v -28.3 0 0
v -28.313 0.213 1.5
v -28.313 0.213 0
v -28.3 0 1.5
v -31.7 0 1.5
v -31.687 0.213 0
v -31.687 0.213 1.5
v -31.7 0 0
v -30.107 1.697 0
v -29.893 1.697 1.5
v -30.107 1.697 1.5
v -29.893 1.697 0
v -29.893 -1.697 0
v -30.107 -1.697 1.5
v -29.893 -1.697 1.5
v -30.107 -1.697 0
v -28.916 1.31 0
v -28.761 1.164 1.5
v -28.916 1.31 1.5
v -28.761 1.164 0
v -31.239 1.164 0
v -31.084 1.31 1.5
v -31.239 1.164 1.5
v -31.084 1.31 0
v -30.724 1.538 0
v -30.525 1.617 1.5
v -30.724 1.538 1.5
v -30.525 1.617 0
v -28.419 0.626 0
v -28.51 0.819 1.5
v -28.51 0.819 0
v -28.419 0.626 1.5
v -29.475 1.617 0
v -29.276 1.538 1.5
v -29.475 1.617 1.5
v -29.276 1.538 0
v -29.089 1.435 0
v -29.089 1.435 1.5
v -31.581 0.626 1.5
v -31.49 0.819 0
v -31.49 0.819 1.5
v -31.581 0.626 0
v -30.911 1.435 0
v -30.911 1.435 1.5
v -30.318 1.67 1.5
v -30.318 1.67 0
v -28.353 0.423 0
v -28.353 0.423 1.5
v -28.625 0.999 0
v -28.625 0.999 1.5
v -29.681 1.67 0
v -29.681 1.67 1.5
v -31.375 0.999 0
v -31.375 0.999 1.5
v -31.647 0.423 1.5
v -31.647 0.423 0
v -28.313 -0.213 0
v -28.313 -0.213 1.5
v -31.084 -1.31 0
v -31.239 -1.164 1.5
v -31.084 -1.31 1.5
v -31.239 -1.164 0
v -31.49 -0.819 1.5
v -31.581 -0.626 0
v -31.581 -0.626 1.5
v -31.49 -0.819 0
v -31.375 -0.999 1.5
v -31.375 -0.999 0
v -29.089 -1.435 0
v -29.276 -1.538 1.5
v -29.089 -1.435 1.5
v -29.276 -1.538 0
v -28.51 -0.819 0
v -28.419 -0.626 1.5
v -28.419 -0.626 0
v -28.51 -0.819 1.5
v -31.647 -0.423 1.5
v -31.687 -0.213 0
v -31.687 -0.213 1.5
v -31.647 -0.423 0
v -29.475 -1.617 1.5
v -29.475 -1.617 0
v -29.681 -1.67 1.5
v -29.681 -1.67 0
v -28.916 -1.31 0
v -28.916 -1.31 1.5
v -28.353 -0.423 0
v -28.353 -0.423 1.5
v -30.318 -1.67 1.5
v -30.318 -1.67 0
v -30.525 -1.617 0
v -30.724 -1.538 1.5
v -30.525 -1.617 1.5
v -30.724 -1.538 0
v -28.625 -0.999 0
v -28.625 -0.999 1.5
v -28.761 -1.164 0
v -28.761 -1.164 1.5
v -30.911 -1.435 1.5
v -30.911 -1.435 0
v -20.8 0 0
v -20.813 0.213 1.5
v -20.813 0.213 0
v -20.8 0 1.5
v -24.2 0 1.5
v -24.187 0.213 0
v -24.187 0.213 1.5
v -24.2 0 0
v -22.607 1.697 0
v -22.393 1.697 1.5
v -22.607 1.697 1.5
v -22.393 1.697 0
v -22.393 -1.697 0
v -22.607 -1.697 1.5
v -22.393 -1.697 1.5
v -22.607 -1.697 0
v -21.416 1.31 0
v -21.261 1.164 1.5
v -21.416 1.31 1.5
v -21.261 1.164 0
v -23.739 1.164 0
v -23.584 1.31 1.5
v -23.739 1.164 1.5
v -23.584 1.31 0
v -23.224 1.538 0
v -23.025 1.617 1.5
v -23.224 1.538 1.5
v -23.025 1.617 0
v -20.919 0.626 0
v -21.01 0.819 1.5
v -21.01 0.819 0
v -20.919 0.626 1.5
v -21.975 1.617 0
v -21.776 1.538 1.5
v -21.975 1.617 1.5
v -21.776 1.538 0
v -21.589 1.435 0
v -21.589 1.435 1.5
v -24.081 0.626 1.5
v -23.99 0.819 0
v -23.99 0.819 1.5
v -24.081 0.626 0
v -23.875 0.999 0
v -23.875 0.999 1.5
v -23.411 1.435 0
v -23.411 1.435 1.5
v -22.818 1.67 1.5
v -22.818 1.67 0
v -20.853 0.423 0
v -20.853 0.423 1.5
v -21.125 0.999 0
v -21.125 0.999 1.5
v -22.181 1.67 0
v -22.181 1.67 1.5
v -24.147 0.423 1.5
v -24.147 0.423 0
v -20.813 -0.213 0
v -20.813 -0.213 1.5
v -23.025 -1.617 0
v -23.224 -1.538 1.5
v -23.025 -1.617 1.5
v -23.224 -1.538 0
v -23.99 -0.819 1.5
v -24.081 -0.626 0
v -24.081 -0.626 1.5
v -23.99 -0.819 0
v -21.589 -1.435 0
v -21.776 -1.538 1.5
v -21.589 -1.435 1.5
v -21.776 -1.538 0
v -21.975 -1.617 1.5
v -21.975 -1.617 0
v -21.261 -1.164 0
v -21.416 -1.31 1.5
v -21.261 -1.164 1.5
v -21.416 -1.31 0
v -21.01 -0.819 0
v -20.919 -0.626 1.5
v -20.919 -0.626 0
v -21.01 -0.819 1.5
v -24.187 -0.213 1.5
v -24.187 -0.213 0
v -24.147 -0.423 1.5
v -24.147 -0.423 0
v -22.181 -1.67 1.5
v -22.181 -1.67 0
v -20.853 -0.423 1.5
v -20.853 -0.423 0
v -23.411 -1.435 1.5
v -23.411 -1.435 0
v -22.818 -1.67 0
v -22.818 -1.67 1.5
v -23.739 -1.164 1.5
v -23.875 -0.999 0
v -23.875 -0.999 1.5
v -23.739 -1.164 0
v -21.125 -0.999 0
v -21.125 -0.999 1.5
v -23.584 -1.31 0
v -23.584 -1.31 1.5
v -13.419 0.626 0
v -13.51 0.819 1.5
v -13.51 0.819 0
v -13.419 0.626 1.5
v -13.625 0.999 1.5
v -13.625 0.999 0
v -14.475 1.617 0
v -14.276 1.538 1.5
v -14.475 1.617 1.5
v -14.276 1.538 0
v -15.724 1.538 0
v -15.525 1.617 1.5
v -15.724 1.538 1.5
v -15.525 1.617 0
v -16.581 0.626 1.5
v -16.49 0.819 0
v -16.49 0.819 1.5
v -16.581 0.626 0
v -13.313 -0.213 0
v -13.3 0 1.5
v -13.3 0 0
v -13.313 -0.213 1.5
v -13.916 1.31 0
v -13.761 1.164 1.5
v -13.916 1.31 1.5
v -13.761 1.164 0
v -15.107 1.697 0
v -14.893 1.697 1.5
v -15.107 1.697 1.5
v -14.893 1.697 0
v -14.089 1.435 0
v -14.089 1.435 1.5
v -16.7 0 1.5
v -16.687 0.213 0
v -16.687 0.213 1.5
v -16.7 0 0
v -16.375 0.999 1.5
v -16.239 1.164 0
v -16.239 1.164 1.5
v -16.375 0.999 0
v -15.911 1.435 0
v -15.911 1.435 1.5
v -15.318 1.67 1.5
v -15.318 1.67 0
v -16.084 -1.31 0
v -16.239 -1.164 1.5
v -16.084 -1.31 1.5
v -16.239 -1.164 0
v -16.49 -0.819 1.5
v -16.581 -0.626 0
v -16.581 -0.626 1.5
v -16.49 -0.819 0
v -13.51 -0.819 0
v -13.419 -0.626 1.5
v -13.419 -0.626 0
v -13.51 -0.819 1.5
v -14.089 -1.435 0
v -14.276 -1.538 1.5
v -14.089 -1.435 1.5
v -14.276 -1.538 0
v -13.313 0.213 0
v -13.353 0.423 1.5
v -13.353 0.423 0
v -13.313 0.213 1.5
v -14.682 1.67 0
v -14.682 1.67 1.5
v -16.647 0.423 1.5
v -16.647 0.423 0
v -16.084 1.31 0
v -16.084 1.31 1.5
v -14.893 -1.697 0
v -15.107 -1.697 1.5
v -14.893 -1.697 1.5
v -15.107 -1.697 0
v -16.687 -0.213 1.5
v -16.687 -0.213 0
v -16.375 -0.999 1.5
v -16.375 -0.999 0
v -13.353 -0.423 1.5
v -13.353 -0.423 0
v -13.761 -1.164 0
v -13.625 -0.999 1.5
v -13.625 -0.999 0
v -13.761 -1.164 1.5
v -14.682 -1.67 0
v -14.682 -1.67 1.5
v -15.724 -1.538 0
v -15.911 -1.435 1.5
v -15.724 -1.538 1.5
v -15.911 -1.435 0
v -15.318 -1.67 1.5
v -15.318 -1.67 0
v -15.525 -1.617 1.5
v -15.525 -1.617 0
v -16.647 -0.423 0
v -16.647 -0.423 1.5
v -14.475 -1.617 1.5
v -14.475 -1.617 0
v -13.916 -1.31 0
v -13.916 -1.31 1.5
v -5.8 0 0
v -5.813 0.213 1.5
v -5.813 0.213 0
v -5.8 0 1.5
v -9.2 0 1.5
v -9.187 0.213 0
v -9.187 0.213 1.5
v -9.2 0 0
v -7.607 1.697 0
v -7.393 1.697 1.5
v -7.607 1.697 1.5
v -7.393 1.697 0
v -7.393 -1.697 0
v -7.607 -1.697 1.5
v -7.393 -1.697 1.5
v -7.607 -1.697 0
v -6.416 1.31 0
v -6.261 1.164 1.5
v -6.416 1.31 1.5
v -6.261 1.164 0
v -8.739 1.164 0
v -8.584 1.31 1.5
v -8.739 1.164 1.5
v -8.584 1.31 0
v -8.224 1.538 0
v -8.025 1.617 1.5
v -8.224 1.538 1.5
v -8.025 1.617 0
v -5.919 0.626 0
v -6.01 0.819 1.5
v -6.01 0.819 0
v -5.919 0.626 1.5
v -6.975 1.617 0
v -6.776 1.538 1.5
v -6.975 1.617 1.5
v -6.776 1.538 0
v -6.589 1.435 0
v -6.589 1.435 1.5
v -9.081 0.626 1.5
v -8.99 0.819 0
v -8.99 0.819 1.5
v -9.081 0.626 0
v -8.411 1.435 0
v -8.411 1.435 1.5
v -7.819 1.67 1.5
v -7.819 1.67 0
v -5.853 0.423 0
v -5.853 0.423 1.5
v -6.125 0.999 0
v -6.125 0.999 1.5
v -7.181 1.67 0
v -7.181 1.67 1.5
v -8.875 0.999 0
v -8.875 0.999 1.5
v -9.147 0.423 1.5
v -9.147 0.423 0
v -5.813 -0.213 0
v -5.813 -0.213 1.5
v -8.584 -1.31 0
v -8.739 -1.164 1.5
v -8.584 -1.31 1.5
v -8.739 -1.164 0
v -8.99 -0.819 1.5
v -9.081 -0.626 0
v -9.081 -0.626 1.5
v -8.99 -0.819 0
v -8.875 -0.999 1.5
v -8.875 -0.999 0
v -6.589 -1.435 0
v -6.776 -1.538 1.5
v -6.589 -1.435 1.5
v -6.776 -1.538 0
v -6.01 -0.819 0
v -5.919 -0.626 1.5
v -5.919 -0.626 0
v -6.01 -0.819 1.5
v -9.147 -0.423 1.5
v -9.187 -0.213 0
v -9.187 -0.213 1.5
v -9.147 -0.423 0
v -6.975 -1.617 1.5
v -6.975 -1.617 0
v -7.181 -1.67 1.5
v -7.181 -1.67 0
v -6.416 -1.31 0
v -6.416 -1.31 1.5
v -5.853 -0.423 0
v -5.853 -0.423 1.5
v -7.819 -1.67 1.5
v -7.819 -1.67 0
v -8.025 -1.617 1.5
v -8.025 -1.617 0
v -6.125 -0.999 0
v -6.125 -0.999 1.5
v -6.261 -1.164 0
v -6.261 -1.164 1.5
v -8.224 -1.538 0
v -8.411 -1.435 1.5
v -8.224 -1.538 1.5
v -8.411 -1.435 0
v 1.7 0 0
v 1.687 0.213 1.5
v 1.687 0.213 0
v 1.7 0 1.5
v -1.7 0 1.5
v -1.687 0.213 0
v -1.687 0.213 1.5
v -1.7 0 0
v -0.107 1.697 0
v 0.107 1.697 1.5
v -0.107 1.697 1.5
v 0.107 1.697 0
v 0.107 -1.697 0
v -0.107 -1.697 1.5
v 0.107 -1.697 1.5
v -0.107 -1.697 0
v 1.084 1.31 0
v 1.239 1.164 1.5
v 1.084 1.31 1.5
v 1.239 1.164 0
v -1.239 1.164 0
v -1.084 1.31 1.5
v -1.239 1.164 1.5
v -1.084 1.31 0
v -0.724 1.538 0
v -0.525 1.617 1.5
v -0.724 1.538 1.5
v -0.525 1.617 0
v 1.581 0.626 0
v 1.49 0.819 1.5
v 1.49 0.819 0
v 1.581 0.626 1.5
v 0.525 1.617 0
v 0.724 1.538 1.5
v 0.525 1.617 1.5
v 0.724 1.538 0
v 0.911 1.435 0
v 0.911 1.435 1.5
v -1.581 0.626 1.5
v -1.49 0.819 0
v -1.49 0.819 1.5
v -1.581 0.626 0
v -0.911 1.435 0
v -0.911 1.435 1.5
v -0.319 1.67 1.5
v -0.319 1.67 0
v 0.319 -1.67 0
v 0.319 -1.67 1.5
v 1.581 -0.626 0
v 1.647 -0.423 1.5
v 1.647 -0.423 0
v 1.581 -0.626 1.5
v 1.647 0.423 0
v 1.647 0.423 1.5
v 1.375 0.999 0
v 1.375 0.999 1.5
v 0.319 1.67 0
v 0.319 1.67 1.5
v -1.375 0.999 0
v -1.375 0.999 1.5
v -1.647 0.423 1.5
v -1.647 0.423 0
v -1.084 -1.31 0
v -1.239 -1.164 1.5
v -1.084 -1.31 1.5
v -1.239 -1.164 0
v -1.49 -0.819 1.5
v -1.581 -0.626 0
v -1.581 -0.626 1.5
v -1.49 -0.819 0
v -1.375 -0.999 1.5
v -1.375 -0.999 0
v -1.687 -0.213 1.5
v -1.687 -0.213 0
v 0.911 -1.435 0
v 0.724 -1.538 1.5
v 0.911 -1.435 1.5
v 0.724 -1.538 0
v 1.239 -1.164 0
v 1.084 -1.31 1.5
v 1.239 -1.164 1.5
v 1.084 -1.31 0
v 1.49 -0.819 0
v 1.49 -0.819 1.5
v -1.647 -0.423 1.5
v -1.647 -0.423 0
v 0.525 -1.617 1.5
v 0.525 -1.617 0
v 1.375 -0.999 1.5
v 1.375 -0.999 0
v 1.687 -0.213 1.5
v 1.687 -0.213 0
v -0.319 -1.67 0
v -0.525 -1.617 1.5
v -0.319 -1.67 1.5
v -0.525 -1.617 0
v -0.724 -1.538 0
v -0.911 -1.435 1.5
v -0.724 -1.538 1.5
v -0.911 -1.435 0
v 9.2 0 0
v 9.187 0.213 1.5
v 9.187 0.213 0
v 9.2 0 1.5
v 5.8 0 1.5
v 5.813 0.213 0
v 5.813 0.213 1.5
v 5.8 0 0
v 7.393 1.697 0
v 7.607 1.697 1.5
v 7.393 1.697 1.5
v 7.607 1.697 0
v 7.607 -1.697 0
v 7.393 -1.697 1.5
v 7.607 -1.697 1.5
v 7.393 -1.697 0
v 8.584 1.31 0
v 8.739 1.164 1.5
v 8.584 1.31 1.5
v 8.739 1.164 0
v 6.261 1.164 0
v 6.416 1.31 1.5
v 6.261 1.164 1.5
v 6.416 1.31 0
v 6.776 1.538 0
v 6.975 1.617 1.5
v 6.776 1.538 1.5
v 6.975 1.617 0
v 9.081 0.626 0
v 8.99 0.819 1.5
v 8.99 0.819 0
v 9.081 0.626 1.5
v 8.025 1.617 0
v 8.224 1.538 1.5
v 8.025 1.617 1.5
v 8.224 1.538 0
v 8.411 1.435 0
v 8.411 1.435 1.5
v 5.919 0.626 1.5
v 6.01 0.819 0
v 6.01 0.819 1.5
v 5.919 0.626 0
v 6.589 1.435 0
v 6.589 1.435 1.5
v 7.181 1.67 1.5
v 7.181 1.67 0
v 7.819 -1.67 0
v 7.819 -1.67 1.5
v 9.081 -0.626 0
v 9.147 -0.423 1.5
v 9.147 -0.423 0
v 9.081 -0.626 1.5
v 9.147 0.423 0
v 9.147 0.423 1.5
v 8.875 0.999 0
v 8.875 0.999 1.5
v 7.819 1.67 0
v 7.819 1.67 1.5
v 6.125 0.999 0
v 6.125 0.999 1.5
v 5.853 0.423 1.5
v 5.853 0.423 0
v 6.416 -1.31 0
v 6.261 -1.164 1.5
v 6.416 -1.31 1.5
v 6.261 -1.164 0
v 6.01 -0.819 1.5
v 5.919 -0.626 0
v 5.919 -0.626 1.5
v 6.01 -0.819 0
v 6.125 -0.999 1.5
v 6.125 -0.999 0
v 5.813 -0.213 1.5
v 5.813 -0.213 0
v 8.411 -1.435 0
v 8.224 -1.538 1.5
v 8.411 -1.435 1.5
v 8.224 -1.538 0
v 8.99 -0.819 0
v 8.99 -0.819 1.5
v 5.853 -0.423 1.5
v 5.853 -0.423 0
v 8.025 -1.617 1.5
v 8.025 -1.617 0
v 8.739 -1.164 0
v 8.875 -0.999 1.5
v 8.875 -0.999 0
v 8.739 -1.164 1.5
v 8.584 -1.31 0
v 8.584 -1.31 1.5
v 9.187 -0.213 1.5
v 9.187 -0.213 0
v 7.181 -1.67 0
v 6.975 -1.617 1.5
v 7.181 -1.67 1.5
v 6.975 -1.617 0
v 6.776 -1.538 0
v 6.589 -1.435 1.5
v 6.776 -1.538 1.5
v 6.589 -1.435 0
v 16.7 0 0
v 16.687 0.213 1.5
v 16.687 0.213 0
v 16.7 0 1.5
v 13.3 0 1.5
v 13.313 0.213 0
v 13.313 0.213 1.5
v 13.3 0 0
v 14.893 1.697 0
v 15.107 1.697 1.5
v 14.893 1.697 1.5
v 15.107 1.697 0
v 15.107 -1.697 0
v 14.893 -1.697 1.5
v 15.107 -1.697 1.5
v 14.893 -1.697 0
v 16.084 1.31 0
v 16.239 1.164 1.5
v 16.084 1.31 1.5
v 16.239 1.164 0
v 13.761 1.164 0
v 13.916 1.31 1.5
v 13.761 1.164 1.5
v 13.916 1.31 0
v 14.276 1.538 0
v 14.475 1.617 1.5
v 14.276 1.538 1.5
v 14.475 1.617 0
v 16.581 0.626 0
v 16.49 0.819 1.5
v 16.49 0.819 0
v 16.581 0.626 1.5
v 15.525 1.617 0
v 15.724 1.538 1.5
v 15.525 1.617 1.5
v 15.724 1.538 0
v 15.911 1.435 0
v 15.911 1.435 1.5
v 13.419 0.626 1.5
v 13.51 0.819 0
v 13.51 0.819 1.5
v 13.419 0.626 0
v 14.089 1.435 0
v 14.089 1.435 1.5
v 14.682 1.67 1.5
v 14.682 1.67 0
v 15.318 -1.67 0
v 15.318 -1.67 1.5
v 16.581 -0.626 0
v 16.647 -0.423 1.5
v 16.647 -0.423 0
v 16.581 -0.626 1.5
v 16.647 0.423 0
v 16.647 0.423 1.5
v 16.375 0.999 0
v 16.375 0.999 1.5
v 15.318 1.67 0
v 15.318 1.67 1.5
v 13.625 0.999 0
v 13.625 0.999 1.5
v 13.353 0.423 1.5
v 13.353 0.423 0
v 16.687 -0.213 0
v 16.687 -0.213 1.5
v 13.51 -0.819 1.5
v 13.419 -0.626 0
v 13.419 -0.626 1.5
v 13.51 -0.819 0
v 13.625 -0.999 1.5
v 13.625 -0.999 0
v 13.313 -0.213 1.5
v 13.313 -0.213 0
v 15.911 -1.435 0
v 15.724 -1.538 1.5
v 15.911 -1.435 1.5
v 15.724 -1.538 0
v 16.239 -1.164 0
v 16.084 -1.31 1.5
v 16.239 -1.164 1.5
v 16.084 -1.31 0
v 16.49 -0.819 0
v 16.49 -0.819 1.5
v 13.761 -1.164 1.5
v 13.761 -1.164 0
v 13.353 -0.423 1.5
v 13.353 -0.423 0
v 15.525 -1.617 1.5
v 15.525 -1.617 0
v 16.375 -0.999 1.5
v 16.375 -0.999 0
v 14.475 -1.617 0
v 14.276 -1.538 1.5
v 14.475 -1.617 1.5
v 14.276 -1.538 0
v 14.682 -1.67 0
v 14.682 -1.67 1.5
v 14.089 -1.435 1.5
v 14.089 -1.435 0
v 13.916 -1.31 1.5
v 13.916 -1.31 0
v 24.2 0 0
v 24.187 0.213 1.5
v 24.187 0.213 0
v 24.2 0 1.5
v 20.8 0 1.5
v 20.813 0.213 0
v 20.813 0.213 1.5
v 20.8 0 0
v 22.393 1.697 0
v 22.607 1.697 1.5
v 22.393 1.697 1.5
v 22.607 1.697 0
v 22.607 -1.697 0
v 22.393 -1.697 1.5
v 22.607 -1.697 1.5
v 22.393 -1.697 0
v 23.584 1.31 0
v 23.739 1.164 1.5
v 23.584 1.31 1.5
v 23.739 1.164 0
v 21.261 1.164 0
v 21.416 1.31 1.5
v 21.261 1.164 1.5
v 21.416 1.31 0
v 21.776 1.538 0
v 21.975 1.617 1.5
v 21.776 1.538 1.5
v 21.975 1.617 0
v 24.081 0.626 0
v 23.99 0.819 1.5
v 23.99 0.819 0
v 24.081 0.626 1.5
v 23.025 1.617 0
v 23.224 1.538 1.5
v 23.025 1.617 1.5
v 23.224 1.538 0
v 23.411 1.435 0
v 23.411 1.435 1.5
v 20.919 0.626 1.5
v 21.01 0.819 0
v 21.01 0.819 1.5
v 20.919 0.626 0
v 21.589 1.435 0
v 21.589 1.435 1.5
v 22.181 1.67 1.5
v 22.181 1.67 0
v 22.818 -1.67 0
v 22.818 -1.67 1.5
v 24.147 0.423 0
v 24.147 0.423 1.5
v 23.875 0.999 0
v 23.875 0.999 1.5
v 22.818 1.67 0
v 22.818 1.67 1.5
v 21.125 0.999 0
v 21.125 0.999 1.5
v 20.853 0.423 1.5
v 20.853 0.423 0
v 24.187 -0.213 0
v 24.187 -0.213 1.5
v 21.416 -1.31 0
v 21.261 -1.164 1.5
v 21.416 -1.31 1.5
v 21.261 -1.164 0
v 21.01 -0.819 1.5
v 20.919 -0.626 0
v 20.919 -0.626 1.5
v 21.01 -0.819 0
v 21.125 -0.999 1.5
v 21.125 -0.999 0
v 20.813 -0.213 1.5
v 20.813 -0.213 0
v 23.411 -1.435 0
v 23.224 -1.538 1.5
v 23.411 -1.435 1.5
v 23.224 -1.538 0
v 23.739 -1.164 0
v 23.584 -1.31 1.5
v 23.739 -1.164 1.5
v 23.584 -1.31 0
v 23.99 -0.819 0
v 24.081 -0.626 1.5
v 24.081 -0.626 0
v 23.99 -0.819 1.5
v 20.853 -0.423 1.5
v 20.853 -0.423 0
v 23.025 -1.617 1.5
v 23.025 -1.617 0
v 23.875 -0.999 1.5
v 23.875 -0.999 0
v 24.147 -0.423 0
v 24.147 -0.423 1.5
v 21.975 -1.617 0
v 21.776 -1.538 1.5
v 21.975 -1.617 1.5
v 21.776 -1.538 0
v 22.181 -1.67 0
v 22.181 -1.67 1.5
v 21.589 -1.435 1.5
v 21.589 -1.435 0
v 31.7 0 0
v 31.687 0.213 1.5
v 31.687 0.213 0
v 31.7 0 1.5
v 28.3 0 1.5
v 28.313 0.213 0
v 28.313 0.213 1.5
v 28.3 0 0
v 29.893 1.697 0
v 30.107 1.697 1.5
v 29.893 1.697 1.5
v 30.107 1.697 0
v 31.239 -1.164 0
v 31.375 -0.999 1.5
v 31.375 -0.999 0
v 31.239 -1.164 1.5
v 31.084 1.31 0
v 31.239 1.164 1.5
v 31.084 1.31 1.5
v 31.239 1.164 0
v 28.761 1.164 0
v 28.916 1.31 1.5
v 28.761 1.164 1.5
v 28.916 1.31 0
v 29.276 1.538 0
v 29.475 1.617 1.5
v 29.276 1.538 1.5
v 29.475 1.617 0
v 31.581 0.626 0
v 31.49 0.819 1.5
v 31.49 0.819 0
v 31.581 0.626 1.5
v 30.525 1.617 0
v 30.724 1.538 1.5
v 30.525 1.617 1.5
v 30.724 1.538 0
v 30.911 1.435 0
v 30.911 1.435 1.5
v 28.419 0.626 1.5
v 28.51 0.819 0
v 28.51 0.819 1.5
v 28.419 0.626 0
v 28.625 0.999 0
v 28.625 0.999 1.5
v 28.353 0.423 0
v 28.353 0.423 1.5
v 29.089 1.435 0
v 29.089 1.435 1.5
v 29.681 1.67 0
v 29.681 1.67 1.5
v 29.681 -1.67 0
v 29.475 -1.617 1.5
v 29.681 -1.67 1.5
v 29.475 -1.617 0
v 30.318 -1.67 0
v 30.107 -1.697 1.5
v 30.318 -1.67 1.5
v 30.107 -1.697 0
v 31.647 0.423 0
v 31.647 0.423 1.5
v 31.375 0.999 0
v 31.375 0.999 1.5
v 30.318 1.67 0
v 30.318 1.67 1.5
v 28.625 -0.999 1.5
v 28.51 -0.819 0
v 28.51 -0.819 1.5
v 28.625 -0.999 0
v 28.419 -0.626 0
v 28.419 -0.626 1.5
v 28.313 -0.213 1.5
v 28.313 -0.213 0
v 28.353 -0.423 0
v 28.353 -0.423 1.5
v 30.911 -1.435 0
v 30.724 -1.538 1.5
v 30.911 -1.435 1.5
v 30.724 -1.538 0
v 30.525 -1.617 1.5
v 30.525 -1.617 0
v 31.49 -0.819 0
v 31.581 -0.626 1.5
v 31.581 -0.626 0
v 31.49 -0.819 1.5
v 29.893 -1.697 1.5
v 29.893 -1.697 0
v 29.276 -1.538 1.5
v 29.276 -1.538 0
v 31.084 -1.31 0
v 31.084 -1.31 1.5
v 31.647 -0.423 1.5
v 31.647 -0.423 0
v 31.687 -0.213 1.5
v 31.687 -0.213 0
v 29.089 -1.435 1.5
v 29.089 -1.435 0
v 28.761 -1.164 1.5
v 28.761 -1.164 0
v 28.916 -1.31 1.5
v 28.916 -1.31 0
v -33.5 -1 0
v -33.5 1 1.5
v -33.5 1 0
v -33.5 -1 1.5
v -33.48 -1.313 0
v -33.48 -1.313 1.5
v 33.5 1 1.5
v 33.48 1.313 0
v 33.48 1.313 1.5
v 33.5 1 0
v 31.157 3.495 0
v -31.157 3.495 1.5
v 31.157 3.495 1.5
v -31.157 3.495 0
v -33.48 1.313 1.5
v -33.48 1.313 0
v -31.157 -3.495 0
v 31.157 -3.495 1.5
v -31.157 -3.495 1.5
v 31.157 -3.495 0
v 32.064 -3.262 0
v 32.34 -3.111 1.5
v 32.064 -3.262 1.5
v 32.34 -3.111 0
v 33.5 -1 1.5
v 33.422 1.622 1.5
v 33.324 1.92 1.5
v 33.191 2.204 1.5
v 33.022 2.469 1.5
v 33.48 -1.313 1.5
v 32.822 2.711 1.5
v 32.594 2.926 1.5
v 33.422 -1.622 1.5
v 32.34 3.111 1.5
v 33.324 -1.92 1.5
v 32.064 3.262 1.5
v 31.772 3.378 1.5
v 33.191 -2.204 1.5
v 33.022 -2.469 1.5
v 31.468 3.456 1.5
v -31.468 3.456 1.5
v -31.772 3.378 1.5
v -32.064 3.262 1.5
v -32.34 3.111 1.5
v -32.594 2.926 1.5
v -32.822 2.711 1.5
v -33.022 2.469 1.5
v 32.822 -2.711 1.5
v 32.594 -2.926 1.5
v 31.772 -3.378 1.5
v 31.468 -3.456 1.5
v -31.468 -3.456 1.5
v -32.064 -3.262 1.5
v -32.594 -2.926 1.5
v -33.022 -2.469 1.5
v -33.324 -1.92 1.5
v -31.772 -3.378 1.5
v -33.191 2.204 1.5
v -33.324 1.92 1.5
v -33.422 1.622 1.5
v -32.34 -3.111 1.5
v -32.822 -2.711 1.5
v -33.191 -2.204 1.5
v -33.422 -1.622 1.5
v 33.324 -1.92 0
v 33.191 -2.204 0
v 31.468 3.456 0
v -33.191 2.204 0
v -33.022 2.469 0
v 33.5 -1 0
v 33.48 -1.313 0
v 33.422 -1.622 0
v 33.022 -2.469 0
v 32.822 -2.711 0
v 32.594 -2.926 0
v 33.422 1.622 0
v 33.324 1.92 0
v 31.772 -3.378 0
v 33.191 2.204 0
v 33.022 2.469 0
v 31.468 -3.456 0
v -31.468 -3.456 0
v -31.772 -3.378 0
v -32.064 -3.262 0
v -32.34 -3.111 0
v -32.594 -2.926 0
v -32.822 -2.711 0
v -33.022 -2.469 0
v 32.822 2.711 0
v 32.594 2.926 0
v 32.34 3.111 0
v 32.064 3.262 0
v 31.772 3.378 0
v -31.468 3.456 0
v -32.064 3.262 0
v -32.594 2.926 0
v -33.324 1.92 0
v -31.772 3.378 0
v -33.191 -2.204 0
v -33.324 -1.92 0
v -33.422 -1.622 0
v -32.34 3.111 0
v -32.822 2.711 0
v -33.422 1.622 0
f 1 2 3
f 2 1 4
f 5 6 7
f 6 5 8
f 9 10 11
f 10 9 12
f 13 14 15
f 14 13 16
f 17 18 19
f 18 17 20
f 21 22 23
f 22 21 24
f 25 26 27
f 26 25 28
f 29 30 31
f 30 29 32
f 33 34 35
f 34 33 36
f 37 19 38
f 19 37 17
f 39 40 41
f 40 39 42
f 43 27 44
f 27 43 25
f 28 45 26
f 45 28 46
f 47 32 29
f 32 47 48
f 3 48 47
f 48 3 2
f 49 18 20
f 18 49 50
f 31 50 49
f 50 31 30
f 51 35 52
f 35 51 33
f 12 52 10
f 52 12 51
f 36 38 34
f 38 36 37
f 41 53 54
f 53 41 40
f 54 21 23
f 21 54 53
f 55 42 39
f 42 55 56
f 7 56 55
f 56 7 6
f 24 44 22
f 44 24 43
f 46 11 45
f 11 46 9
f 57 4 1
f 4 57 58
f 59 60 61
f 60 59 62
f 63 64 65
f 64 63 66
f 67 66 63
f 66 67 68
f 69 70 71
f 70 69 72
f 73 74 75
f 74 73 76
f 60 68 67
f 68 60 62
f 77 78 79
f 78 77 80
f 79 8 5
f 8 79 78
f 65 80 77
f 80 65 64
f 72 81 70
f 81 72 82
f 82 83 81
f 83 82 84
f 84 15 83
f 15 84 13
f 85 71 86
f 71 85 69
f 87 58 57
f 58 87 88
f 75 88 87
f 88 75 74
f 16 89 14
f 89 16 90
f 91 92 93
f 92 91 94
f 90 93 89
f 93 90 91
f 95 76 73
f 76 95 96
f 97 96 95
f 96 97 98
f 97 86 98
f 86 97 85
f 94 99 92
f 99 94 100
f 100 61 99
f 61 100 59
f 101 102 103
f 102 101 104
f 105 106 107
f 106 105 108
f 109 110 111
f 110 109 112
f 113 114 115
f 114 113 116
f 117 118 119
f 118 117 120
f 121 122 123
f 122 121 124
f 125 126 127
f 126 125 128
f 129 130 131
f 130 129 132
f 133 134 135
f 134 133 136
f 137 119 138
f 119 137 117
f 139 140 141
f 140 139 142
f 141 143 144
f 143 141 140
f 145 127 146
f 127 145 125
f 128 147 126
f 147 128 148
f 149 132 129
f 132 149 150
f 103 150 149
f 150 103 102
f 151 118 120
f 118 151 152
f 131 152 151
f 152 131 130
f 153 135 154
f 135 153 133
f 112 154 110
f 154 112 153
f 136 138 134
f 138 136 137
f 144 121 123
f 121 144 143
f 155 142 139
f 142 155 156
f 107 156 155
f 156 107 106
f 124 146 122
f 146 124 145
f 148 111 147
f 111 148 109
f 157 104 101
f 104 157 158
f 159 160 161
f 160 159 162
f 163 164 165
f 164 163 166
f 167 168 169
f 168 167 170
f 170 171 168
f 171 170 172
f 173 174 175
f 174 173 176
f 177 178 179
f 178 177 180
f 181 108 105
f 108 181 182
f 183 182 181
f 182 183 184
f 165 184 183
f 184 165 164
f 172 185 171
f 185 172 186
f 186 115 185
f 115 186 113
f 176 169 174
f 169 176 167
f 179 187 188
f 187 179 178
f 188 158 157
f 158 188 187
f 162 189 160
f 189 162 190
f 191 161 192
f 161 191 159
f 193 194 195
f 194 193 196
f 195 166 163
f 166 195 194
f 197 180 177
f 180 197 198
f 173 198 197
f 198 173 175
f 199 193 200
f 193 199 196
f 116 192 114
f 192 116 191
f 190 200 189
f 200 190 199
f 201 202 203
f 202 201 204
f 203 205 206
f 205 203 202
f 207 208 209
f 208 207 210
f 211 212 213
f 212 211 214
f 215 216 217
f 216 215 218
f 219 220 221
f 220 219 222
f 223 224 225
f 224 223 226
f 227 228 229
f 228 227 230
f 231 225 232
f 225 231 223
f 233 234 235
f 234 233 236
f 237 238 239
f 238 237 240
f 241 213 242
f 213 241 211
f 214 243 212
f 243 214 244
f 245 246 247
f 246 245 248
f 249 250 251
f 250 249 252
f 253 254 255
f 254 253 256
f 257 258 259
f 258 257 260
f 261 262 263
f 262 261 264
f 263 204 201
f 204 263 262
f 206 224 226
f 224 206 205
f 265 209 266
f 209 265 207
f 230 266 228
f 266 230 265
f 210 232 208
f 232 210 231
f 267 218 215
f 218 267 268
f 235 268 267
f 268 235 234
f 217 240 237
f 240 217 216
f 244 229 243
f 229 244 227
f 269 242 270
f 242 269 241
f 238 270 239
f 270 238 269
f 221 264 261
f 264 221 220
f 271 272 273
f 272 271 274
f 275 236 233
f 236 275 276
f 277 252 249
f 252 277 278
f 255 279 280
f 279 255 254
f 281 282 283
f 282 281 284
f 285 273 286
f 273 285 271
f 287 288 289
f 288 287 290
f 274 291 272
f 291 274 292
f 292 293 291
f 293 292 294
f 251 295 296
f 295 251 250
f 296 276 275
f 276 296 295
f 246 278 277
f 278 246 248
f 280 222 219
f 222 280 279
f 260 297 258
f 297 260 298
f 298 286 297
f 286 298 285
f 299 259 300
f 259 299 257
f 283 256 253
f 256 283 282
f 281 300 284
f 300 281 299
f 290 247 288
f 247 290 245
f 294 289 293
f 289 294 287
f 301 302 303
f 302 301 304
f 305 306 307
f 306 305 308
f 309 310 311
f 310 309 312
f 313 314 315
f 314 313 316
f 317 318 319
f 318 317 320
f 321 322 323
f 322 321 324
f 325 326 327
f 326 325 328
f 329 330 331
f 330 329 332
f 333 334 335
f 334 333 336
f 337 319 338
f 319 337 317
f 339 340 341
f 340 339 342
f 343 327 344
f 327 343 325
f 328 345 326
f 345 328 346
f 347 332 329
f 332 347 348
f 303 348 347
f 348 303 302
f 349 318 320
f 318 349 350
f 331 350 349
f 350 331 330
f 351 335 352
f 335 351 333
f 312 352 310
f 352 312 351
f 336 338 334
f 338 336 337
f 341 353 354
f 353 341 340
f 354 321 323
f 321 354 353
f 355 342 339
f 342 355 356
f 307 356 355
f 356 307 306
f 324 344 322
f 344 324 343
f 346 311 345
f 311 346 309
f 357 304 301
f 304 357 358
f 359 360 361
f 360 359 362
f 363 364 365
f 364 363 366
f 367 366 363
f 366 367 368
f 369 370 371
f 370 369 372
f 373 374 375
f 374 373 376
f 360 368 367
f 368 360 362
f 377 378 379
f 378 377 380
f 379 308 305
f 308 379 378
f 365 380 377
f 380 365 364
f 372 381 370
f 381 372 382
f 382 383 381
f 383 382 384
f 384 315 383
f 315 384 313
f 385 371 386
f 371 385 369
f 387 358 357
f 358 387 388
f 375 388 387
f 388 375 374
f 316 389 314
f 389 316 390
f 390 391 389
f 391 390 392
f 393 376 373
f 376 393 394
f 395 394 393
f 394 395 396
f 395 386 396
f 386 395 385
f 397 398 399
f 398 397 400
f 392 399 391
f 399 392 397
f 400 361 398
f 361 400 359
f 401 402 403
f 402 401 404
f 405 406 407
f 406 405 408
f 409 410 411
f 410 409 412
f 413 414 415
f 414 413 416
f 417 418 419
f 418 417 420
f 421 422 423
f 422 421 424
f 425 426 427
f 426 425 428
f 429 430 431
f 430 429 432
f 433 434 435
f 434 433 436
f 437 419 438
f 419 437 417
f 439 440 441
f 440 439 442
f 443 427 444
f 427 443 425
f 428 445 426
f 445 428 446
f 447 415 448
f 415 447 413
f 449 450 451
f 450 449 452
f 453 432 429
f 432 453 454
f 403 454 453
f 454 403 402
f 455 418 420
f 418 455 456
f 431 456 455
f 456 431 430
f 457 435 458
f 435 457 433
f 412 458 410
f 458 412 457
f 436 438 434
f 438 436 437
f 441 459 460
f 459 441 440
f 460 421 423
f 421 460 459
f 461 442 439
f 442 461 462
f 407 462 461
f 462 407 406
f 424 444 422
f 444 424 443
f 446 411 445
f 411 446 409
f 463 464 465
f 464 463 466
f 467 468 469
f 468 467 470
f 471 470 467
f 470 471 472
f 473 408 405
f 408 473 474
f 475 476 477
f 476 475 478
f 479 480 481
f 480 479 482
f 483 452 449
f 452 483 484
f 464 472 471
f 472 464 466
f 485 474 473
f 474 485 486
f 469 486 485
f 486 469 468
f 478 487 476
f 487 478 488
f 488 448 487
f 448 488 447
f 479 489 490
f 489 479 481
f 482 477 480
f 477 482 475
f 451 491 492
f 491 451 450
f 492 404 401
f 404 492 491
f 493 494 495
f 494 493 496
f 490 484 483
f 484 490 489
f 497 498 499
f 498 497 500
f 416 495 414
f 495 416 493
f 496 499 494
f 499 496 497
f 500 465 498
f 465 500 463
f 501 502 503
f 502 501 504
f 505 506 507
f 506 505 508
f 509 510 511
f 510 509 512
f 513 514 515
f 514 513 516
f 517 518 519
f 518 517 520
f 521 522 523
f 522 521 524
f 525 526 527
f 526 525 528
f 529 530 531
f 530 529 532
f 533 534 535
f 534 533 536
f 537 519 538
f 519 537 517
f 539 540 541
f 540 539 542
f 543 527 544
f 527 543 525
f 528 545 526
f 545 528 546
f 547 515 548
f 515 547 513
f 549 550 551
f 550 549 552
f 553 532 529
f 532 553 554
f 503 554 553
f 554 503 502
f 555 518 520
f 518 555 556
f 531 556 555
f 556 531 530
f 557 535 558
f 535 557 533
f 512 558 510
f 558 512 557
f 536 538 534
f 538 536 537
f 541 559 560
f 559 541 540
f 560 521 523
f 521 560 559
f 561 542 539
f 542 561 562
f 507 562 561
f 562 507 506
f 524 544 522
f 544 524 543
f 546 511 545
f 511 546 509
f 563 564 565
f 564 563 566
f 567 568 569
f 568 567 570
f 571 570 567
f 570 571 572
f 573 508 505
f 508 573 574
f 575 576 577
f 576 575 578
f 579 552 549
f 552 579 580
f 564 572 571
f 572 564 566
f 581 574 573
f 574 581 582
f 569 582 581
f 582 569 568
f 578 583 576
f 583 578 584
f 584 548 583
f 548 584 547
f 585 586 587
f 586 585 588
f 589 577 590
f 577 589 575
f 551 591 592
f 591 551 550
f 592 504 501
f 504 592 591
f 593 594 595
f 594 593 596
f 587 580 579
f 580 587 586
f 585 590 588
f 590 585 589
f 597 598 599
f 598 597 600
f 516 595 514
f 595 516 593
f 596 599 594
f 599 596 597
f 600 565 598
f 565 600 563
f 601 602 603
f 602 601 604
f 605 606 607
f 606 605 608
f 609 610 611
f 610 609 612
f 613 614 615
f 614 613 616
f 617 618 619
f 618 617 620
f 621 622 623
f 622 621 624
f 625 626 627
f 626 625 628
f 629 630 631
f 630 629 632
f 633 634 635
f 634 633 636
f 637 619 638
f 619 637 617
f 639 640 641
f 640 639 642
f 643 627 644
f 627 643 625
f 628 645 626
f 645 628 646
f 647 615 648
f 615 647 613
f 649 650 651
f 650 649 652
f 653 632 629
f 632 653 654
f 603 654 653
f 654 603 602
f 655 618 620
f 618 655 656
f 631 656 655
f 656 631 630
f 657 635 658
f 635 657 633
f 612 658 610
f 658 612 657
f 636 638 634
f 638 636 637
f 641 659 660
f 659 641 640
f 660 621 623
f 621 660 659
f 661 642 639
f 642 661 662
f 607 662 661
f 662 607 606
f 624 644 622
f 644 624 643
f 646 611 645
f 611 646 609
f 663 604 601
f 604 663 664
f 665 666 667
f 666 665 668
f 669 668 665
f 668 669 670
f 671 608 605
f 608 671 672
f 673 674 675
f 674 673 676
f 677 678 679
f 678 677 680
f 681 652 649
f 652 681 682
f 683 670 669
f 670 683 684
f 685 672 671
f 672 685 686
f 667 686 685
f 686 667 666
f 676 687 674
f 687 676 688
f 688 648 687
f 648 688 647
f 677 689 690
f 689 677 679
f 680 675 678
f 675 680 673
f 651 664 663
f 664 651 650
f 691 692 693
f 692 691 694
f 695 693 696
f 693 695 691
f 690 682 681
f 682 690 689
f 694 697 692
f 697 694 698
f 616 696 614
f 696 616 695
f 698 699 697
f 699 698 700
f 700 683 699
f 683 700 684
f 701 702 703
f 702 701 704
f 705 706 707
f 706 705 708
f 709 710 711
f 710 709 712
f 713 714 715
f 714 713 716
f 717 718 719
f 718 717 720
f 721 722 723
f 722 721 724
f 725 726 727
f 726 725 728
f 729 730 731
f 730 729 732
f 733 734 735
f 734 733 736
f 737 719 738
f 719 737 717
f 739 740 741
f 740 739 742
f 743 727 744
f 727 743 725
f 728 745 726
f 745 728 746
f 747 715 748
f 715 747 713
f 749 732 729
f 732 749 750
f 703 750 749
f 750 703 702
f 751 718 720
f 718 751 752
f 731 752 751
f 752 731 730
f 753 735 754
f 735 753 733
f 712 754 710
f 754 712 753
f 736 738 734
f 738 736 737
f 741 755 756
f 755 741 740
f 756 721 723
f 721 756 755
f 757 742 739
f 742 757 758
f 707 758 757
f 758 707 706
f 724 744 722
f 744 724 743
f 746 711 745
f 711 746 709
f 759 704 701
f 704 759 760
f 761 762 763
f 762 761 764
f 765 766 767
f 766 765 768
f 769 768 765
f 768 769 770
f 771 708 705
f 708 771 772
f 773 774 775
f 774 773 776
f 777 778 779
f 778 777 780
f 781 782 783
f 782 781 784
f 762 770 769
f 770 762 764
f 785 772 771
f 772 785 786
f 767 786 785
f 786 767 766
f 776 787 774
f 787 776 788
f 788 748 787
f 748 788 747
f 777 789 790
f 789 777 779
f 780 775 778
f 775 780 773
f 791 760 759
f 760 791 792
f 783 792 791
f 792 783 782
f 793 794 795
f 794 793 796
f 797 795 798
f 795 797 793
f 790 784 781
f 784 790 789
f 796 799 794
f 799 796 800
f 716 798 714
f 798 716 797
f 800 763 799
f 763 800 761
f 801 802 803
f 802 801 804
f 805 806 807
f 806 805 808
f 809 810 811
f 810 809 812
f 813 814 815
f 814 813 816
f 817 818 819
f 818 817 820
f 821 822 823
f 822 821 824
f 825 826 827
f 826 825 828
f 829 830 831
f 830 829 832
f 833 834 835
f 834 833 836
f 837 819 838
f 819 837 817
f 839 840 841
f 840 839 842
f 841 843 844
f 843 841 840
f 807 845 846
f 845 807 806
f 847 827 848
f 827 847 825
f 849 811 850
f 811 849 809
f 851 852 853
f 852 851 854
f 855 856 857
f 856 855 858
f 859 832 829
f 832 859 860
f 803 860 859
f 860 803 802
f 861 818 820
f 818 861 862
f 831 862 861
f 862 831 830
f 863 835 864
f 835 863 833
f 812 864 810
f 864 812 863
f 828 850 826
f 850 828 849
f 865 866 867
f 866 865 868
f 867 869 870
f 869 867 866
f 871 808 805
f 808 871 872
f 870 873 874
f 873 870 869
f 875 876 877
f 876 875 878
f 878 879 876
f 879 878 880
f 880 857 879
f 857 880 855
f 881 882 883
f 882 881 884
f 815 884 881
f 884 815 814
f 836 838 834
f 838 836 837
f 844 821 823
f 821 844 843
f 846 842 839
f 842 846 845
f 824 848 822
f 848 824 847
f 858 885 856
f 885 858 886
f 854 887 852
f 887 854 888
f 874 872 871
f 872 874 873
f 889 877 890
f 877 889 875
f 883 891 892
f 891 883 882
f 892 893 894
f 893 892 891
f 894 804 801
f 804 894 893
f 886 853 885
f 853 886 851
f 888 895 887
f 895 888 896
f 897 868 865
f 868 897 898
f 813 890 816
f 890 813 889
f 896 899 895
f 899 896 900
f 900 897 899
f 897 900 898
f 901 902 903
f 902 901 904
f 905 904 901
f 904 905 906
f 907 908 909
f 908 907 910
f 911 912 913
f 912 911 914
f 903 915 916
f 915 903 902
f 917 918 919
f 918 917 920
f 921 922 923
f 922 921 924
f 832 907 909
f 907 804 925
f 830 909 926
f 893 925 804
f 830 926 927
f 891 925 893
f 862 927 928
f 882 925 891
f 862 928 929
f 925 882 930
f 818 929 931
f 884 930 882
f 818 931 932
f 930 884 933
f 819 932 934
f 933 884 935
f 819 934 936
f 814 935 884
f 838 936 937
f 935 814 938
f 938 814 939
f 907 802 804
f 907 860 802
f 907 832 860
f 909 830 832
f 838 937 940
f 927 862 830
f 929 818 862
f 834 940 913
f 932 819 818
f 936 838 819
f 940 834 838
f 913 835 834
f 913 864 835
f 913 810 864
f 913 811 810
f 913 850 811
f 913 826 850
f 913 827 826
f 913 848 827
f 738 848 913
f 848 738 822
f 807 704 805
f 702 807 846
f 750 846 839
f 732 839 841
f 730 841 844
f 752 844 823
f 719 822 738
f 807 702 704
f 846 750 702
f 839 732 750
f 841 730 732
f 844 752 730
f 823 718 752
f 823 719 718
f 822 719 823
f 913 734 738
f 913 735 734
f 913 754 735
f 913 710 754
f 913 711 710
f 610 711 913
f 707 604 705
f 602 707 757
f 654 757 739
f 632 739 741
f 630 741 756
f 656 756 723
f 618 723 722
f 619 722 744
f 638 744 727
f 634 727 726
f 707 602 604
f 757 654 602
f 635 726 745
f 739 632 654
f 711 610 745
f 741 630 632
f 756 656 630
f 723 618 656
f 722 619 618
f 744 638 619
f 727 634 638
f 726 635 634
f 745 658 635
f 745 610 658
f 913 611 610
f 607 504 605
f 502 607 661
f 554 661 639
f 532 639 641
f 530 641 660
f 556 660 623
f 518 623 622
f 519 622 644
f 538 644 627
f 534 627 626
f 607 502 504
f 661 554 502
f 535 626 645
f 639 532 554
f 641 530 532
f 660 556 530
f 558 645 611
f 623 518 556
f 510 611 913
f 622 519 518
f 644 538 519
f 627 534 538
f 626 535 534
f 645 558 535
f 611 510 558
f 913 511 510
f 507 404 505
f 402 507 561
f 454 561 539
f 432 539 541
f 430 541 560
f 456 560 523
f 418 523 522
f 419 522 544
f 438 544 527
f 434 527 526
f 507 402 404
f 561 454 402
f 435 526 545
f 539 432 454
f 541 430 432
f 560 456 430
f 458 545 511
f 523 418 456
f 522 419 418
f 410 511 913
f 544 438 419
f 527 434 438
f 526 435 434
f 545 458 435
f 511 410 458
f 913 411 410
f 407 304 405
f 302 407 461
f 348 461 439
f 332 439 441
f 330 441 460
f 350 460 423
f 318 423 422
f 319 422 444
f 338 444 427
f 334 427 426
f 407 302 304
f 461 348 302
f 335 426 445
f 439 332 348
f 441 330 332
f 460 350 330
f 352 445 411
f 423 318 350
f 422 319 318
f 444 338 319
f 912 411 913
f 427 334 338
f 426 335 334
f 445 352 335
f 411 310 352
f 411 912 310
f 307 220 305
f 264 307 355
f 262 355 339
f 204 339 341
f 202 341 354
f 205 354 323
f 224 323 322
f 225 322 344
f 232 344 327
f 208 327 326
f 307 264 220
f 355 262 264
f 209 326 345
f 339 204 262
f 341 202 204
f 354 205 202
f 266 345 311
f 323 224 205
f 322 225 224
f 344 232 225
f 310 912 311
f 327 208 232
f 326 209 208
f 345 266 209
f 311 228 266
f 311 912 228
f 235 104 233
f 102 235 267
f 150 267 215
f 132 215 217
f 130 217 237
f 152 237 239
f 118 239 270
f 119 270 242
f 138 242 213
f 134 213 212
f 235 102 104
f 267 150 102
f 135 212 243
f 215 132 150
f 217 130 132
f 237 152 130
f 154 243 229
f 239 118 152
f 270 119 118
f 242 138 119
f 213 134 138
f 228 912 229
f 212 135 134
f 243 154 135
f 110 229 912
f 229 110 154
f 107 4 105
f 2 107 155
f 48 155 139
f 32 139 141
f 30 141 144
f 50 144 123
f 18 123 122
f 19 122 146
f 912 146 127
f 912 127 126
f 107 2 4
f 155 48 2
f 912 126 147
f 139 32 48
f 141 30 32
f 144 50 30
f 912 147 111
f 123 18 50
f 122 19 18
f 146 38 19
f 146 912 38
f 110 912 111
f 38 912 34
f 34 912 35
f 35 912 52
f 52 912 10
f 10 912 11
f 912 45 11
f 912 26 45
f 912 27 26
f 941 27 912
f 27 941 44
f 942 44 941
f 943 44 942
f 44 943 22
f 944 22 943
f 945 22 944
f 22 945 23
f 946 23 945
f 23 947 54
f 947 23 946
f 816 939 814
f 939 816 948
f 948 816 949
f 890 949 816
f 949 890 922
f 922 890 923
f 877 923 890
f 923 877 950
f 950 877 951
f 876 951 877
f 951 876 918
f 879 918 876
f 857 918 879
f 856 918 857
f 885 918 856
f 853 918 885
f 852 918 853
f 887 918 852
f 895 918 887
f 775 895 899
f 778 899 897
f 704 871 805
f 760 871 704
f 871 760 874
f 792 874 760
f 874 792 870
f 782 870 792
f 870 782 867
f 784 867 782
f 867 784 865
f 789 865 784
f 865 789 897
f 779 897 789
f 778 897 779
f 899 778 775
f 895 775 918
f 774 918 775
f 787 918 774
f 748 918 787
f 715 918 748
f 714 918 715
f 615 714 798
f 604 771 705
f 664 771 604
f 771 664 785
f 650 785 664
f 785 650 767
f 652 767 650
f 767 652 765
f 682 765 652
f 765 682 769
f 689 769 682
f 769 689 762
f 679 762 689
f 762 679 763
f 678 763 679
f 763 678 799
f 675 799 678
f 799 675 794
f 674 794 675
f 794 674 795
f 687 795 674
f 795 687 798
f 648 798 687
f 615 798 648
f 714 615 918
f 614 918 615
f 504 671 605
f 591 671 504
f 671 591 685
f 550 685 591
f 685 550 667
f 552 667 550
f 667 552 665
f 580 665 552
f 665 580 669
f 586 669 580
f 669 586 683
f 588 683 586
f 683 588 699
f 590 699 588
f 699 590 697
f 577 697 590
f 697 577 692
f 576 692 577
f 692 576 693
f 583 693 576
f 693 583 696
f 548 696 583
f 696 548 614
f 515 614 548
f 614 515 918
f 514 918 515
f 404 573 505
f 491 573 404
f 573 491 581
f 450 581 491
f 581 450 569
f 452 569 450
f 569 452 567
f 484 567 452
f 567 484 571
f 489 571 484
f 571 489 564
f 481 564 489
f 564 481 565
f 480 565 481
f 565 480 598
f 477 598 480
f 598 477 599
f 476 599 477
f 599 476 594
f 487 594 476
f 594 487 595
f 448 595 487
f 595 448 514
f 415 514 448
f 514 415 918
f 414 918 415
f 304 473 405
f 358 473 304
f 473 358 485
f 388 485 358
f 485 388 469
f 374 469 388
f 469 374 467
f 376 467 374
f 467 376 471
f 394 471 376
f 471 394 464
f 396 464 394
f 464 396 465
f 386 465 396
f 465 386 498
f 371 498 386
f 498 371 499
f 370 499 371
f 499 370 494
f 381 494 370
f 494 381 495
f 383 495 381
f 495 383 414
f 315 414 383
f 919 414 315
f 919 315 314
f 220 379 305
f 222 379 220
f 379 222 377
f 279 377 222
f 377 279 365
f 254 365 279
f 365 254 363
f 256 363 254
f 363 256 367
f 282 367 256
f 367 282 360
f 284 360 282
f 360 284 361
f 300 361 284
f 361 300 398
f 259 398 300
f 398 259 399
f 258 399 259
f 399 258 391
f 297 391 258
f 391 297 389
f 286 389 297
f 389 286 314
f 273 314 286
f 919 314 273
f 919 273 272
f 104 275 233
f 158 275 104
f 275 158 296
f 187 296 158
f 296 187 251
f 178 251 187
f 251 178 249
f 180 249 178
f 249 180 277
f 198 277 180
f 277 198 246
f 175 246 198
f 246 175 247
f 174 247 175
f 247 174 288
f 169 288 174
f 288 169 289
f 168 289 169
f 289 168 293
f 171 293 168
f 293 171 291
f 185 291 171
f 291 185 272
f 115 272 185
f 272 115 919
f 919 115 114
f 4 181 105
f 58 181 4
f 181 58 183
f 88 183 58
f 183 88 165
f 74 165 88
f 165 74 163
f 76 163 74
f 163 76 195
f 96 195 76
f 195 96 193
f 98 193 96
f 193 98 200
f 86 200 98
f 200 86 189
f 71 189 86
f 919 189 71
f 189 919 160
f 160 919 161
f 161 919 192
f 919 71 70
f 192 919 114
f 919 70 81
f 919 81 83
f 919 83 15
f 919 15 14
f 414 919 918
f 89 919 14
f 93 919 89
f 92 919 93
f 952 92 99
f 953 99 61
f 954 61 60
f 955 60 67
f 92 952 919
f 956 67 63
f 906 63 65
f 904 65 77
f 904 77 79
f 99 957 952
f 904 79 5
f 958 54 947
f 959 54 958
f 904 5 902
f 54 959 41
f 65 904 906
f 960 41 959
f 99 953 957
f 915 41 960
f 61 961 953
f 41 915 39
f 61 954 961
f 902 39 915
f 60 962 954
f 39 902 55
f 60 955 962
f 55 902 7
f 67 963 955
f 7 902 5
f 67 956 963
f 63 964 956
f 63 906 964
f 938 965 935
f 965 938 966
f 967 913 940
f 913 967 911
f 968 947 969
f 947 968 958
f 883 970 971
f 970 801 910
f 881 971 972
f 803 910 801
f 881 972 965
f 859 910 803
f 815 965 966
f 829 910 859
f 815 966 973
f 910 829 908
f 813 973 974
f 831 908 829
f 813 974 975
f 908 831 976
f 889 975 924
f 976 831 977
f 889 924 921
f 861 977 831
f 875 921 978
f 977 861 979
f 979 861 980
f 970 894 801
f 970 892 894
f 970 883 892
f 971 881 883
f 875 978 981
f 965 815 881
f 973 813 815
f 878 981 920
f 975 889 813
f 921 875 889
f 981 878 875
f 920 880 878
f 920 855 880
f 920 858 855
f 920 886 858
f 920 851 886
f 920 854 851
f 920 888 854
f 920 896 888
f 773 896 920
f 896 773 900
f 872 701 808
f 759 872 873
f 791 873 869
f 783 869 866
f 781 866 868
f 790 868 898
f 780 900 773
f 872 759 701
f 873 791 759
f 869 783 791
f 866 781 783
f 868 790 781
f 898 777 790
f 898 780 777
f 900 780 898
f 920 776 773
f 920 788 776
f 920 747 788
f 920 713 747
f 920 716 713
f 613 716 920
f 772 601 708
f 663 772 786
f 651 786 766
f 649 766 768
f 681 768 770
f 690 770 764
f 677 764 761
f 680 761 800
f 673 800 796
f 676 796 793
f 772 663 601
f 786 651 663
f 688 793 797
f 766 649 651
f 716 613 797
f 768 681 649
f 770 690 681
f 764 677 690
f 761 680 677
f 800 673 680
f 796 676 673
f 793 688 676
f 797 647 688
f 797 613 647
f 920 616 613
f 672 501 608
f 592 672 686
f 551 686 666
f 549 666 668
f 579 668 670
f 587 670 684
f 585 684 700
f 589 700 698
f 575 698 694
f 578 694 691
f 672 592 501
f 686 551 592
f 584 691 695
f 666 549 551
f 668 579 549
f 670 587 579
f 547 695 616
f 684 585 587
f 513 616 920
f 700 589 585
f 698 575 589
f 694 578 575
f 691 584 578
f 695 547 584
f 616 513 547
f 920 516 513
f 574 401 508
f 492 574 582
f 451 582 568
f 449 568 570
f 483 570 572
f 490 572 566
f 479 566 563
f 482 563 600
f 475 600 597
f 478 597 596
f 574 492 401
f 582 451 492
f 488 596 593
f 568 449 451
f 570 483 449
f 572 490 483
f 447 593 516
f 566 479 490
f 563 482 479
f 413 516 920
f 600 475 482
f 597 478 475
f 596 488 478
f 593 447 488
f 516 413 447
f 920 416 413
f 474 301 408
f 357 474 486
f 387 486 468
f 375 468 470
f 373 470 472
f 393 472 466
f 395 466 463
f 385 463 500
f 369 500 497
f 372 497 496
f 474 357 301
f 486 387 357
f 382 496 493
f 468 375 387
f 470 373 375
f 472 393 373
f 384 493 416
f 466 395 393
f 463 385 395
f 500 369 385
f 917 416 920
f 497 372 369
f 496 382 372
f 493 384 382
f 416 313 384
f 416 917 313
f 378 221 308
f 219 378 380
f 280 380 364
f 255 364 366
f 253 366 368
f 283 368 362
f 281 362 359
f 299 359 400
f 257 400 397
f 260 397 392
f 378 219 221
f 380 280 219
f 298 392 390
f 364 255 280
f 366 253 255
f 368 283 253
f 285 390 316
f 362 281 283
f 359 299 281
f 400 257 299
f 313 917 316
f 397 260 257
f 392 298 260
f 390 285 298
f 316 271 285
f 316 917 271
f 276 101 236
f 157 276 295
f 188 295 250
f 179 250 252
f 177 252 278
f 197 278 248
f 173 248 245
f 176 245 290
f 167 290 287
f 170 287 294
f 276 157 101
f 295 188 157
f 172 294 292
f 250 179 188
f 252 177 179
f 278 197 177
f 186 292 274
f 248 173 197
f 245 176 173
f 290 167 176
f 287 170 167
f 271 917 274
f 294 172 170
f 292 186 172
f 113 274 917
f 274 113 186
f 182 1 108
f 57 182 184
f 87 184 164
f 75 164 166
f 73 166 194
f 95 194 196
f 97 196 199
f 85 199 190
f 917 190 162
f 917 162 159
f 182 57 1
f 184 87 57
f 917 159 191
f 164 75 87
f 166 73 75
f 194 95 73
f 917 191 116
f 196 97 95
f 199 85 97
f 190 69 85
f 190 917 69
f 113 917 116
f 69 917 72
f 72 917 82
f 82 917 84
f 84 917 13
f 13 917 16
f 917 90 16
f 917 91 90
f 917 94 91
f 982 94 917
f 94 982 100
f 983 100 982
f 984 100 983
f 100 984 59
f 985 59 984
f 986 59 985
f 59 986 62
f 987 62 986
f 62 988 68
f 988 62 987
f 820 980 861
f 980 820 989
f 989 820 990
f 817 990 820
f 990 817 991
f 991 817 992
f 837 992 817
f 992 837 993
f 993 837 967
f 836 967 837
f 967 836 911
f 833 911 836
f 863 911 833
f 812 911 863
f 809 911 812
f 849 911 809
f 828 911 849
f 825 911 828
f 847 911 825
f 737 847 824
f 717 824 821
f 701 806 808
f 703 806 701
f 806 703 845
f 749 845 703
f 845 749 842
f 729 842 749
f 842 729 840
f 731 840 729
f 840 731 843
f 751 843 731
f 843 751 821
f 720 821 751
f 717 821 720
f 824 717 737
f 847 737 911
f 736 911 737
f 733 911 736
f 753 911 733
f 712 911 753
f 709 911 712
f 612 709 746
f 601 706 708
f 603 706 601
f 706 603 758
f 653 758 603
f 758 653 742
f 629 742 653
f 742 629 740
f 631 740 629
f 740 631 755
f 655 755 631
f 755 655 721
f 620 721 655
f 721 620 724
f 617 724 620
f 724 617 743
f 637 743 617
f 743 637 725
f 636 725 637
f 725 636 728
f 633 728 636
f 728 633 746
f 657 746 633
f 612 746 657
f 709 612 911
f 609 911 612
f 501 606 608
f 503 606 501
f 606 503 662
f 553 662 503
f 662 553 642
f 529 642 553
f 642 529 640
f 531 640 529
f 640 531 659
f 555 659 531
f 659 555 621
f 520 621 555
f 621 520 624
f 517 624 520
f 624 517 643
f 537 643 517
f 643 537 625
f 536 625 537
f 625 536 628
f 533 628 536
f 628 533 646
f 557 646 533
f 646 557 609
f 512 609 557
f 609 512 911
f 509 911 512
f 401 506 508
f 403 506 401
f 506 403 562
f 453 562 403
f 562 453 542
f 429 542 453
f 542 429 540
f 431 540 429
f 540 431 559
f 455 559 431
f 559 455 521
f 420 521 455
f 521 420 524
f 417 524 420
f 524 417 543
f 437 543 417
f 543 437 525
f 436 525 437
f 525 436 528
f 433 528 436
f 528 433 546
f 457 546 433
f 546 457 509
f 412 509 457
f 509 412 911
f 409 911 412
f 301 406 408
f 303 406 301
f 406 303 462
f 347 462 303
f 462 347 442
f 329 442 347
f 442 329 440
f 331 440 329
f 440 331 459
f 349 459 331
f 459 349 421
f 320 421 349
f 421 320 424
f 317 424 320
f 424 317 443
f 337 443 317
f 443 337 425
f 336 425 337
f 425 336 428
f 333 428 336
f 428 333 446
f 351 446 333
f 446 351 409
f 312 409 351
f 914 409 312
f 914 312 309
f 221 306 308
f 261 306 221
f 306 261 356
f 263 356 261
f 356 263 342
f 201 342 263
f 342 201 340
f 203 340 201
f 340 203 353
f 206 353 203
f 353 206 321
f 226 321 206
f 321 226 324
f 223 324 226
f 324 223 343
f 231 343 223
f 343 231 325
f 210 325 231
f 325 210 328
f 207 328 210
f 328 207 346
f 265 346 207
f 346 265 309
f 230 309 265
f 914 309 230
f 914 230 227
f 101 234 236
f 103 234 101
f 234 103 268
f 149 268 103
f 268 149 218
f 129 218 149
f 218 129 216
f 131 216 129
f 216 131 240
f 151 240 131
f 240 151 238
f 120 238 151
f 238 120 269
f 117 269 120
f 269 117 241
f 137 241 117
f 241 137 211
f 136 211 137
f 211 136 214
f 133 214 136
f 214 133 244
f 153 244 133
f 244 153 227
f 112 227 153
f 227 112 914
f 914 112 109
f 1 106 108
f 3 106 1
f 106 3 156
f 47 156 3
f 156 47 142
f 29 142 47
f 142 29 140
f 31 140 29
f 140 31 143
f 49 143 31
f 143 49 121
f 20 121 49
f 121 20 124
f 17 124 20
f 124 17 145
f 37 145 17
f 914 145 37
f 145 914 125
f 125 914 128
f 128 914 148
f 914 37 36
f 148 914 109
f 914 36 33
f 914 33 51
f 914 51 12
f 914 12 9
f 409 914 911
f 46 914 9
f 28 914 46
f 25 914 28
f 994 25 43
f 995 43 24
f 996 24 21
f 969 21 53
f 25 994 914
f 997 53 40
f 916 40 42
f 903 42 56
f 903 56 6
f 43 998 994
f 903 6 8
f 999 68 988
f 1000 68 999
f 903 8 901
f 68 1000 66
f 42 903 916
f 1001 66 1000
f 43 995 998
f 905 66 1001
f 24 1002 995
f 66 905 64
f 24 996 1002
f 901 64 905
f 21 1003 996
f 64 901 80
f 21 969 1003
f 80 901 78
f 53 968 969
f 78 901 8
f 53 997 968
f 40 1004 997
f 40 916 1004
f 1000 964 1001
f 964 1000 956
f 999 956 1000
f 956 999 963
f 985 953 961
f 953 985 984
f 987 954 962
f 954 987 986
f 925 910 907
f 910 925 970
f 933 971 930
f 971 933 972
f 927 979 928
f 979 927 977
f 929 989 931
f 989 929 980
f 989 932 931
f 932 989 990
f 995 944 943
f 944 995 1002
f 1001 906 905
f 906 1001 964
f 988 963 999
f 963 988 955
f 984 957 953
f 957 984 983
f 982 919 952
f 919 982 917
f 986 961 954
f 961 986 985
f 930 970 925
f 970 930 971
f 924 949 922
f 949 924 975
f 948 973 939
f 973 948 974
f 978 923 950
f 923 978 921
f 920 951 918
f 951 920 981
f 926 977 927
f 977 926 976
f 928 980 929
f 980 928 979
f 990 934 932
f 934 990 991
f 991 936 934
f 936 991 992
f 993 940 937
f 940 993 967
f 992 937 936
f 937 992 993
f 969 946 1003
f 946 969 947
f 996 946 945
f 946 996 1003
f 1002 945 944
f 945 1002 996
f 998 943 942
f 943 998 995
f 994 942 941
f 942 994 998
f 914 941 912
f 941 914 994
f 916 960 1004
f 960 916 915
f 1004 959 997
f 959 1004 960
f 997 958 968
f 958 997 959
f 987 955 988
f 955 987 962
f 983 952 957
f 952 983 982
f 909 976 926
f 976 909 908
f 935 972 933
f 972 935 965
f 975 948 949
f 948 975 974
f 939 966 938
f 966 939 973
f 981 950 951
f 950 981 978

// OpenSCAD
$fn = 50;


difference() {
	union() {
		translate(v = [0, 0, 0]) {
			rotate(a = [0, 0, 0]) {
				hull() {
					translate(v = [-31.0000000000, 1.0000000000, 0]) {
						rotate(a = [0, 0, 0]) {
							translate(v = [0, 0, 0]) {
								rotate(a = [0, 0, 0]) {
									cylinder(h = 1.5000000000, r = 2.5000000000);
								}
							}
						}
					}
					translate(v = [31.0000000000, 1.0000000000, 0]) {
						rotate(a = [0, 0, 0]) {
							translate(v = [0, 0, 0]) {
								rotate(a = [0, 0, 0]) {
									cylinder(h = 1.5000000000, r = 2.5000000000);
								}
							}
						}
					}
					translate(v = [-31.0000000000, -1.0000000000, 0]) {
						rotate(a = [0, 0, 0]) {
							translate(v = [0, 0, 0]) {
								rotate(a = [0, 0, 0]) {
									cylinder(h = 1.5000000000, r = 2.5000000000);
								}
							}
						}
					}
					translate(v = [31.0000000000, -1.0000000000, 0]) {
						rotate(a = [0, 0, 0]) {
							translate(v = [0, 0, 0]) {
								rotate(a = [0, 0, 0]) {
									cylinder(h = 1.5000000000, r = 2.5000000000);
								}
							}
						}
					}
				}
			}
		}
	}
	union() {
		translate(v = [-30.0000000000, 0.0000000000, 0]) {
			rotate(a = [0, 0, 0]) {
				translate(v = [0, 0, -50]) {
					rotate(a = [0, 0, 0]) {
						cylinder(h = 100, r = 1.7000000000);
					}
				}
			}
		}
		translate(v = [-22.5000000000, 0.0000000000, 0]) {
			rotate(a = [0, 0, 0]) {
				translate(v = [0, 0, -50]) {
					rotate(a = [0, 0, 0]) {
						cylinder(h = 100, r = 1.7000000000);
					}
				}
			}
		}
		translate(v = [-15.0000000000, 0.0000000000, 0]) {
			rotate(a = [0, 0, 0]) {
				translate(v = [0, 0, -50]) {
					rotate(a = [0, 0, 0]) {
						cylinder(h = 100, r = 1.7000000000);
					}
				}
			}
		}
		translate(v = [-7.5000000000, 0.0000000000, 0]) {
			rotate(a = [0, 0, 0]) {
				translate(v = [0, 0, -50]) {
					rotate(a = [0, 0, 0]) {
						cylinder(h = 100, r = 1.7000000000);
					}
				}
			}
		}
		translate(v = [0.0000000000, 0.0000000000, 0]) {
			rotate(a = [0, 0, 0]) {
				translate(v = [0, 0, -50]) {
					rotate(a = [0, 0, 0]) {
						cylinder(h = 100, r = 1.7000000000);
					}
				}
			}
		}
		translate(v = [7.5000000000, 0.0000000000, 0]) {
			rotate(a = [0, 0, 0]) {
				translate(v = [0, 0, -50]) {
					rotate(a = [0, 0, 0]) {
						cylinder(h = 100, r = 1.7000000000);
					}
				}
			}
		}
		translate(v = [15.0000000000, 0.0000000000, 0]) {
			rotate(a = [0, 0, 0]) {
				translate(v = [0, 0, -50]) {
					rotate(a = [0, 0, 0]) {
						cylinder(h = 100, r = 1.7000000000);
					}
				}
			}
		}
		translate(v = [22.5000000000, 0.0000000000, 0]) {
			rotate(a = [0, 0, 0]) {
				translate(v = [0, 0, -50]) {
					rotate(a = [0, 0, 0]) {
						cylinder(h = 100, r = 1.7000000000);
					}
				}
			}
		}
		translate(v = [30.0000000000, 0.0000000000, 0]) {
			rotate(a = [0, 0, 0]) {
				translate(v = [0, 0, -50]) {
					rotate(a = [0, 0, 0]) {
						cylinder(h = 100, r = 1.7000000000);
					}
				}
			}
		}
	}
}
